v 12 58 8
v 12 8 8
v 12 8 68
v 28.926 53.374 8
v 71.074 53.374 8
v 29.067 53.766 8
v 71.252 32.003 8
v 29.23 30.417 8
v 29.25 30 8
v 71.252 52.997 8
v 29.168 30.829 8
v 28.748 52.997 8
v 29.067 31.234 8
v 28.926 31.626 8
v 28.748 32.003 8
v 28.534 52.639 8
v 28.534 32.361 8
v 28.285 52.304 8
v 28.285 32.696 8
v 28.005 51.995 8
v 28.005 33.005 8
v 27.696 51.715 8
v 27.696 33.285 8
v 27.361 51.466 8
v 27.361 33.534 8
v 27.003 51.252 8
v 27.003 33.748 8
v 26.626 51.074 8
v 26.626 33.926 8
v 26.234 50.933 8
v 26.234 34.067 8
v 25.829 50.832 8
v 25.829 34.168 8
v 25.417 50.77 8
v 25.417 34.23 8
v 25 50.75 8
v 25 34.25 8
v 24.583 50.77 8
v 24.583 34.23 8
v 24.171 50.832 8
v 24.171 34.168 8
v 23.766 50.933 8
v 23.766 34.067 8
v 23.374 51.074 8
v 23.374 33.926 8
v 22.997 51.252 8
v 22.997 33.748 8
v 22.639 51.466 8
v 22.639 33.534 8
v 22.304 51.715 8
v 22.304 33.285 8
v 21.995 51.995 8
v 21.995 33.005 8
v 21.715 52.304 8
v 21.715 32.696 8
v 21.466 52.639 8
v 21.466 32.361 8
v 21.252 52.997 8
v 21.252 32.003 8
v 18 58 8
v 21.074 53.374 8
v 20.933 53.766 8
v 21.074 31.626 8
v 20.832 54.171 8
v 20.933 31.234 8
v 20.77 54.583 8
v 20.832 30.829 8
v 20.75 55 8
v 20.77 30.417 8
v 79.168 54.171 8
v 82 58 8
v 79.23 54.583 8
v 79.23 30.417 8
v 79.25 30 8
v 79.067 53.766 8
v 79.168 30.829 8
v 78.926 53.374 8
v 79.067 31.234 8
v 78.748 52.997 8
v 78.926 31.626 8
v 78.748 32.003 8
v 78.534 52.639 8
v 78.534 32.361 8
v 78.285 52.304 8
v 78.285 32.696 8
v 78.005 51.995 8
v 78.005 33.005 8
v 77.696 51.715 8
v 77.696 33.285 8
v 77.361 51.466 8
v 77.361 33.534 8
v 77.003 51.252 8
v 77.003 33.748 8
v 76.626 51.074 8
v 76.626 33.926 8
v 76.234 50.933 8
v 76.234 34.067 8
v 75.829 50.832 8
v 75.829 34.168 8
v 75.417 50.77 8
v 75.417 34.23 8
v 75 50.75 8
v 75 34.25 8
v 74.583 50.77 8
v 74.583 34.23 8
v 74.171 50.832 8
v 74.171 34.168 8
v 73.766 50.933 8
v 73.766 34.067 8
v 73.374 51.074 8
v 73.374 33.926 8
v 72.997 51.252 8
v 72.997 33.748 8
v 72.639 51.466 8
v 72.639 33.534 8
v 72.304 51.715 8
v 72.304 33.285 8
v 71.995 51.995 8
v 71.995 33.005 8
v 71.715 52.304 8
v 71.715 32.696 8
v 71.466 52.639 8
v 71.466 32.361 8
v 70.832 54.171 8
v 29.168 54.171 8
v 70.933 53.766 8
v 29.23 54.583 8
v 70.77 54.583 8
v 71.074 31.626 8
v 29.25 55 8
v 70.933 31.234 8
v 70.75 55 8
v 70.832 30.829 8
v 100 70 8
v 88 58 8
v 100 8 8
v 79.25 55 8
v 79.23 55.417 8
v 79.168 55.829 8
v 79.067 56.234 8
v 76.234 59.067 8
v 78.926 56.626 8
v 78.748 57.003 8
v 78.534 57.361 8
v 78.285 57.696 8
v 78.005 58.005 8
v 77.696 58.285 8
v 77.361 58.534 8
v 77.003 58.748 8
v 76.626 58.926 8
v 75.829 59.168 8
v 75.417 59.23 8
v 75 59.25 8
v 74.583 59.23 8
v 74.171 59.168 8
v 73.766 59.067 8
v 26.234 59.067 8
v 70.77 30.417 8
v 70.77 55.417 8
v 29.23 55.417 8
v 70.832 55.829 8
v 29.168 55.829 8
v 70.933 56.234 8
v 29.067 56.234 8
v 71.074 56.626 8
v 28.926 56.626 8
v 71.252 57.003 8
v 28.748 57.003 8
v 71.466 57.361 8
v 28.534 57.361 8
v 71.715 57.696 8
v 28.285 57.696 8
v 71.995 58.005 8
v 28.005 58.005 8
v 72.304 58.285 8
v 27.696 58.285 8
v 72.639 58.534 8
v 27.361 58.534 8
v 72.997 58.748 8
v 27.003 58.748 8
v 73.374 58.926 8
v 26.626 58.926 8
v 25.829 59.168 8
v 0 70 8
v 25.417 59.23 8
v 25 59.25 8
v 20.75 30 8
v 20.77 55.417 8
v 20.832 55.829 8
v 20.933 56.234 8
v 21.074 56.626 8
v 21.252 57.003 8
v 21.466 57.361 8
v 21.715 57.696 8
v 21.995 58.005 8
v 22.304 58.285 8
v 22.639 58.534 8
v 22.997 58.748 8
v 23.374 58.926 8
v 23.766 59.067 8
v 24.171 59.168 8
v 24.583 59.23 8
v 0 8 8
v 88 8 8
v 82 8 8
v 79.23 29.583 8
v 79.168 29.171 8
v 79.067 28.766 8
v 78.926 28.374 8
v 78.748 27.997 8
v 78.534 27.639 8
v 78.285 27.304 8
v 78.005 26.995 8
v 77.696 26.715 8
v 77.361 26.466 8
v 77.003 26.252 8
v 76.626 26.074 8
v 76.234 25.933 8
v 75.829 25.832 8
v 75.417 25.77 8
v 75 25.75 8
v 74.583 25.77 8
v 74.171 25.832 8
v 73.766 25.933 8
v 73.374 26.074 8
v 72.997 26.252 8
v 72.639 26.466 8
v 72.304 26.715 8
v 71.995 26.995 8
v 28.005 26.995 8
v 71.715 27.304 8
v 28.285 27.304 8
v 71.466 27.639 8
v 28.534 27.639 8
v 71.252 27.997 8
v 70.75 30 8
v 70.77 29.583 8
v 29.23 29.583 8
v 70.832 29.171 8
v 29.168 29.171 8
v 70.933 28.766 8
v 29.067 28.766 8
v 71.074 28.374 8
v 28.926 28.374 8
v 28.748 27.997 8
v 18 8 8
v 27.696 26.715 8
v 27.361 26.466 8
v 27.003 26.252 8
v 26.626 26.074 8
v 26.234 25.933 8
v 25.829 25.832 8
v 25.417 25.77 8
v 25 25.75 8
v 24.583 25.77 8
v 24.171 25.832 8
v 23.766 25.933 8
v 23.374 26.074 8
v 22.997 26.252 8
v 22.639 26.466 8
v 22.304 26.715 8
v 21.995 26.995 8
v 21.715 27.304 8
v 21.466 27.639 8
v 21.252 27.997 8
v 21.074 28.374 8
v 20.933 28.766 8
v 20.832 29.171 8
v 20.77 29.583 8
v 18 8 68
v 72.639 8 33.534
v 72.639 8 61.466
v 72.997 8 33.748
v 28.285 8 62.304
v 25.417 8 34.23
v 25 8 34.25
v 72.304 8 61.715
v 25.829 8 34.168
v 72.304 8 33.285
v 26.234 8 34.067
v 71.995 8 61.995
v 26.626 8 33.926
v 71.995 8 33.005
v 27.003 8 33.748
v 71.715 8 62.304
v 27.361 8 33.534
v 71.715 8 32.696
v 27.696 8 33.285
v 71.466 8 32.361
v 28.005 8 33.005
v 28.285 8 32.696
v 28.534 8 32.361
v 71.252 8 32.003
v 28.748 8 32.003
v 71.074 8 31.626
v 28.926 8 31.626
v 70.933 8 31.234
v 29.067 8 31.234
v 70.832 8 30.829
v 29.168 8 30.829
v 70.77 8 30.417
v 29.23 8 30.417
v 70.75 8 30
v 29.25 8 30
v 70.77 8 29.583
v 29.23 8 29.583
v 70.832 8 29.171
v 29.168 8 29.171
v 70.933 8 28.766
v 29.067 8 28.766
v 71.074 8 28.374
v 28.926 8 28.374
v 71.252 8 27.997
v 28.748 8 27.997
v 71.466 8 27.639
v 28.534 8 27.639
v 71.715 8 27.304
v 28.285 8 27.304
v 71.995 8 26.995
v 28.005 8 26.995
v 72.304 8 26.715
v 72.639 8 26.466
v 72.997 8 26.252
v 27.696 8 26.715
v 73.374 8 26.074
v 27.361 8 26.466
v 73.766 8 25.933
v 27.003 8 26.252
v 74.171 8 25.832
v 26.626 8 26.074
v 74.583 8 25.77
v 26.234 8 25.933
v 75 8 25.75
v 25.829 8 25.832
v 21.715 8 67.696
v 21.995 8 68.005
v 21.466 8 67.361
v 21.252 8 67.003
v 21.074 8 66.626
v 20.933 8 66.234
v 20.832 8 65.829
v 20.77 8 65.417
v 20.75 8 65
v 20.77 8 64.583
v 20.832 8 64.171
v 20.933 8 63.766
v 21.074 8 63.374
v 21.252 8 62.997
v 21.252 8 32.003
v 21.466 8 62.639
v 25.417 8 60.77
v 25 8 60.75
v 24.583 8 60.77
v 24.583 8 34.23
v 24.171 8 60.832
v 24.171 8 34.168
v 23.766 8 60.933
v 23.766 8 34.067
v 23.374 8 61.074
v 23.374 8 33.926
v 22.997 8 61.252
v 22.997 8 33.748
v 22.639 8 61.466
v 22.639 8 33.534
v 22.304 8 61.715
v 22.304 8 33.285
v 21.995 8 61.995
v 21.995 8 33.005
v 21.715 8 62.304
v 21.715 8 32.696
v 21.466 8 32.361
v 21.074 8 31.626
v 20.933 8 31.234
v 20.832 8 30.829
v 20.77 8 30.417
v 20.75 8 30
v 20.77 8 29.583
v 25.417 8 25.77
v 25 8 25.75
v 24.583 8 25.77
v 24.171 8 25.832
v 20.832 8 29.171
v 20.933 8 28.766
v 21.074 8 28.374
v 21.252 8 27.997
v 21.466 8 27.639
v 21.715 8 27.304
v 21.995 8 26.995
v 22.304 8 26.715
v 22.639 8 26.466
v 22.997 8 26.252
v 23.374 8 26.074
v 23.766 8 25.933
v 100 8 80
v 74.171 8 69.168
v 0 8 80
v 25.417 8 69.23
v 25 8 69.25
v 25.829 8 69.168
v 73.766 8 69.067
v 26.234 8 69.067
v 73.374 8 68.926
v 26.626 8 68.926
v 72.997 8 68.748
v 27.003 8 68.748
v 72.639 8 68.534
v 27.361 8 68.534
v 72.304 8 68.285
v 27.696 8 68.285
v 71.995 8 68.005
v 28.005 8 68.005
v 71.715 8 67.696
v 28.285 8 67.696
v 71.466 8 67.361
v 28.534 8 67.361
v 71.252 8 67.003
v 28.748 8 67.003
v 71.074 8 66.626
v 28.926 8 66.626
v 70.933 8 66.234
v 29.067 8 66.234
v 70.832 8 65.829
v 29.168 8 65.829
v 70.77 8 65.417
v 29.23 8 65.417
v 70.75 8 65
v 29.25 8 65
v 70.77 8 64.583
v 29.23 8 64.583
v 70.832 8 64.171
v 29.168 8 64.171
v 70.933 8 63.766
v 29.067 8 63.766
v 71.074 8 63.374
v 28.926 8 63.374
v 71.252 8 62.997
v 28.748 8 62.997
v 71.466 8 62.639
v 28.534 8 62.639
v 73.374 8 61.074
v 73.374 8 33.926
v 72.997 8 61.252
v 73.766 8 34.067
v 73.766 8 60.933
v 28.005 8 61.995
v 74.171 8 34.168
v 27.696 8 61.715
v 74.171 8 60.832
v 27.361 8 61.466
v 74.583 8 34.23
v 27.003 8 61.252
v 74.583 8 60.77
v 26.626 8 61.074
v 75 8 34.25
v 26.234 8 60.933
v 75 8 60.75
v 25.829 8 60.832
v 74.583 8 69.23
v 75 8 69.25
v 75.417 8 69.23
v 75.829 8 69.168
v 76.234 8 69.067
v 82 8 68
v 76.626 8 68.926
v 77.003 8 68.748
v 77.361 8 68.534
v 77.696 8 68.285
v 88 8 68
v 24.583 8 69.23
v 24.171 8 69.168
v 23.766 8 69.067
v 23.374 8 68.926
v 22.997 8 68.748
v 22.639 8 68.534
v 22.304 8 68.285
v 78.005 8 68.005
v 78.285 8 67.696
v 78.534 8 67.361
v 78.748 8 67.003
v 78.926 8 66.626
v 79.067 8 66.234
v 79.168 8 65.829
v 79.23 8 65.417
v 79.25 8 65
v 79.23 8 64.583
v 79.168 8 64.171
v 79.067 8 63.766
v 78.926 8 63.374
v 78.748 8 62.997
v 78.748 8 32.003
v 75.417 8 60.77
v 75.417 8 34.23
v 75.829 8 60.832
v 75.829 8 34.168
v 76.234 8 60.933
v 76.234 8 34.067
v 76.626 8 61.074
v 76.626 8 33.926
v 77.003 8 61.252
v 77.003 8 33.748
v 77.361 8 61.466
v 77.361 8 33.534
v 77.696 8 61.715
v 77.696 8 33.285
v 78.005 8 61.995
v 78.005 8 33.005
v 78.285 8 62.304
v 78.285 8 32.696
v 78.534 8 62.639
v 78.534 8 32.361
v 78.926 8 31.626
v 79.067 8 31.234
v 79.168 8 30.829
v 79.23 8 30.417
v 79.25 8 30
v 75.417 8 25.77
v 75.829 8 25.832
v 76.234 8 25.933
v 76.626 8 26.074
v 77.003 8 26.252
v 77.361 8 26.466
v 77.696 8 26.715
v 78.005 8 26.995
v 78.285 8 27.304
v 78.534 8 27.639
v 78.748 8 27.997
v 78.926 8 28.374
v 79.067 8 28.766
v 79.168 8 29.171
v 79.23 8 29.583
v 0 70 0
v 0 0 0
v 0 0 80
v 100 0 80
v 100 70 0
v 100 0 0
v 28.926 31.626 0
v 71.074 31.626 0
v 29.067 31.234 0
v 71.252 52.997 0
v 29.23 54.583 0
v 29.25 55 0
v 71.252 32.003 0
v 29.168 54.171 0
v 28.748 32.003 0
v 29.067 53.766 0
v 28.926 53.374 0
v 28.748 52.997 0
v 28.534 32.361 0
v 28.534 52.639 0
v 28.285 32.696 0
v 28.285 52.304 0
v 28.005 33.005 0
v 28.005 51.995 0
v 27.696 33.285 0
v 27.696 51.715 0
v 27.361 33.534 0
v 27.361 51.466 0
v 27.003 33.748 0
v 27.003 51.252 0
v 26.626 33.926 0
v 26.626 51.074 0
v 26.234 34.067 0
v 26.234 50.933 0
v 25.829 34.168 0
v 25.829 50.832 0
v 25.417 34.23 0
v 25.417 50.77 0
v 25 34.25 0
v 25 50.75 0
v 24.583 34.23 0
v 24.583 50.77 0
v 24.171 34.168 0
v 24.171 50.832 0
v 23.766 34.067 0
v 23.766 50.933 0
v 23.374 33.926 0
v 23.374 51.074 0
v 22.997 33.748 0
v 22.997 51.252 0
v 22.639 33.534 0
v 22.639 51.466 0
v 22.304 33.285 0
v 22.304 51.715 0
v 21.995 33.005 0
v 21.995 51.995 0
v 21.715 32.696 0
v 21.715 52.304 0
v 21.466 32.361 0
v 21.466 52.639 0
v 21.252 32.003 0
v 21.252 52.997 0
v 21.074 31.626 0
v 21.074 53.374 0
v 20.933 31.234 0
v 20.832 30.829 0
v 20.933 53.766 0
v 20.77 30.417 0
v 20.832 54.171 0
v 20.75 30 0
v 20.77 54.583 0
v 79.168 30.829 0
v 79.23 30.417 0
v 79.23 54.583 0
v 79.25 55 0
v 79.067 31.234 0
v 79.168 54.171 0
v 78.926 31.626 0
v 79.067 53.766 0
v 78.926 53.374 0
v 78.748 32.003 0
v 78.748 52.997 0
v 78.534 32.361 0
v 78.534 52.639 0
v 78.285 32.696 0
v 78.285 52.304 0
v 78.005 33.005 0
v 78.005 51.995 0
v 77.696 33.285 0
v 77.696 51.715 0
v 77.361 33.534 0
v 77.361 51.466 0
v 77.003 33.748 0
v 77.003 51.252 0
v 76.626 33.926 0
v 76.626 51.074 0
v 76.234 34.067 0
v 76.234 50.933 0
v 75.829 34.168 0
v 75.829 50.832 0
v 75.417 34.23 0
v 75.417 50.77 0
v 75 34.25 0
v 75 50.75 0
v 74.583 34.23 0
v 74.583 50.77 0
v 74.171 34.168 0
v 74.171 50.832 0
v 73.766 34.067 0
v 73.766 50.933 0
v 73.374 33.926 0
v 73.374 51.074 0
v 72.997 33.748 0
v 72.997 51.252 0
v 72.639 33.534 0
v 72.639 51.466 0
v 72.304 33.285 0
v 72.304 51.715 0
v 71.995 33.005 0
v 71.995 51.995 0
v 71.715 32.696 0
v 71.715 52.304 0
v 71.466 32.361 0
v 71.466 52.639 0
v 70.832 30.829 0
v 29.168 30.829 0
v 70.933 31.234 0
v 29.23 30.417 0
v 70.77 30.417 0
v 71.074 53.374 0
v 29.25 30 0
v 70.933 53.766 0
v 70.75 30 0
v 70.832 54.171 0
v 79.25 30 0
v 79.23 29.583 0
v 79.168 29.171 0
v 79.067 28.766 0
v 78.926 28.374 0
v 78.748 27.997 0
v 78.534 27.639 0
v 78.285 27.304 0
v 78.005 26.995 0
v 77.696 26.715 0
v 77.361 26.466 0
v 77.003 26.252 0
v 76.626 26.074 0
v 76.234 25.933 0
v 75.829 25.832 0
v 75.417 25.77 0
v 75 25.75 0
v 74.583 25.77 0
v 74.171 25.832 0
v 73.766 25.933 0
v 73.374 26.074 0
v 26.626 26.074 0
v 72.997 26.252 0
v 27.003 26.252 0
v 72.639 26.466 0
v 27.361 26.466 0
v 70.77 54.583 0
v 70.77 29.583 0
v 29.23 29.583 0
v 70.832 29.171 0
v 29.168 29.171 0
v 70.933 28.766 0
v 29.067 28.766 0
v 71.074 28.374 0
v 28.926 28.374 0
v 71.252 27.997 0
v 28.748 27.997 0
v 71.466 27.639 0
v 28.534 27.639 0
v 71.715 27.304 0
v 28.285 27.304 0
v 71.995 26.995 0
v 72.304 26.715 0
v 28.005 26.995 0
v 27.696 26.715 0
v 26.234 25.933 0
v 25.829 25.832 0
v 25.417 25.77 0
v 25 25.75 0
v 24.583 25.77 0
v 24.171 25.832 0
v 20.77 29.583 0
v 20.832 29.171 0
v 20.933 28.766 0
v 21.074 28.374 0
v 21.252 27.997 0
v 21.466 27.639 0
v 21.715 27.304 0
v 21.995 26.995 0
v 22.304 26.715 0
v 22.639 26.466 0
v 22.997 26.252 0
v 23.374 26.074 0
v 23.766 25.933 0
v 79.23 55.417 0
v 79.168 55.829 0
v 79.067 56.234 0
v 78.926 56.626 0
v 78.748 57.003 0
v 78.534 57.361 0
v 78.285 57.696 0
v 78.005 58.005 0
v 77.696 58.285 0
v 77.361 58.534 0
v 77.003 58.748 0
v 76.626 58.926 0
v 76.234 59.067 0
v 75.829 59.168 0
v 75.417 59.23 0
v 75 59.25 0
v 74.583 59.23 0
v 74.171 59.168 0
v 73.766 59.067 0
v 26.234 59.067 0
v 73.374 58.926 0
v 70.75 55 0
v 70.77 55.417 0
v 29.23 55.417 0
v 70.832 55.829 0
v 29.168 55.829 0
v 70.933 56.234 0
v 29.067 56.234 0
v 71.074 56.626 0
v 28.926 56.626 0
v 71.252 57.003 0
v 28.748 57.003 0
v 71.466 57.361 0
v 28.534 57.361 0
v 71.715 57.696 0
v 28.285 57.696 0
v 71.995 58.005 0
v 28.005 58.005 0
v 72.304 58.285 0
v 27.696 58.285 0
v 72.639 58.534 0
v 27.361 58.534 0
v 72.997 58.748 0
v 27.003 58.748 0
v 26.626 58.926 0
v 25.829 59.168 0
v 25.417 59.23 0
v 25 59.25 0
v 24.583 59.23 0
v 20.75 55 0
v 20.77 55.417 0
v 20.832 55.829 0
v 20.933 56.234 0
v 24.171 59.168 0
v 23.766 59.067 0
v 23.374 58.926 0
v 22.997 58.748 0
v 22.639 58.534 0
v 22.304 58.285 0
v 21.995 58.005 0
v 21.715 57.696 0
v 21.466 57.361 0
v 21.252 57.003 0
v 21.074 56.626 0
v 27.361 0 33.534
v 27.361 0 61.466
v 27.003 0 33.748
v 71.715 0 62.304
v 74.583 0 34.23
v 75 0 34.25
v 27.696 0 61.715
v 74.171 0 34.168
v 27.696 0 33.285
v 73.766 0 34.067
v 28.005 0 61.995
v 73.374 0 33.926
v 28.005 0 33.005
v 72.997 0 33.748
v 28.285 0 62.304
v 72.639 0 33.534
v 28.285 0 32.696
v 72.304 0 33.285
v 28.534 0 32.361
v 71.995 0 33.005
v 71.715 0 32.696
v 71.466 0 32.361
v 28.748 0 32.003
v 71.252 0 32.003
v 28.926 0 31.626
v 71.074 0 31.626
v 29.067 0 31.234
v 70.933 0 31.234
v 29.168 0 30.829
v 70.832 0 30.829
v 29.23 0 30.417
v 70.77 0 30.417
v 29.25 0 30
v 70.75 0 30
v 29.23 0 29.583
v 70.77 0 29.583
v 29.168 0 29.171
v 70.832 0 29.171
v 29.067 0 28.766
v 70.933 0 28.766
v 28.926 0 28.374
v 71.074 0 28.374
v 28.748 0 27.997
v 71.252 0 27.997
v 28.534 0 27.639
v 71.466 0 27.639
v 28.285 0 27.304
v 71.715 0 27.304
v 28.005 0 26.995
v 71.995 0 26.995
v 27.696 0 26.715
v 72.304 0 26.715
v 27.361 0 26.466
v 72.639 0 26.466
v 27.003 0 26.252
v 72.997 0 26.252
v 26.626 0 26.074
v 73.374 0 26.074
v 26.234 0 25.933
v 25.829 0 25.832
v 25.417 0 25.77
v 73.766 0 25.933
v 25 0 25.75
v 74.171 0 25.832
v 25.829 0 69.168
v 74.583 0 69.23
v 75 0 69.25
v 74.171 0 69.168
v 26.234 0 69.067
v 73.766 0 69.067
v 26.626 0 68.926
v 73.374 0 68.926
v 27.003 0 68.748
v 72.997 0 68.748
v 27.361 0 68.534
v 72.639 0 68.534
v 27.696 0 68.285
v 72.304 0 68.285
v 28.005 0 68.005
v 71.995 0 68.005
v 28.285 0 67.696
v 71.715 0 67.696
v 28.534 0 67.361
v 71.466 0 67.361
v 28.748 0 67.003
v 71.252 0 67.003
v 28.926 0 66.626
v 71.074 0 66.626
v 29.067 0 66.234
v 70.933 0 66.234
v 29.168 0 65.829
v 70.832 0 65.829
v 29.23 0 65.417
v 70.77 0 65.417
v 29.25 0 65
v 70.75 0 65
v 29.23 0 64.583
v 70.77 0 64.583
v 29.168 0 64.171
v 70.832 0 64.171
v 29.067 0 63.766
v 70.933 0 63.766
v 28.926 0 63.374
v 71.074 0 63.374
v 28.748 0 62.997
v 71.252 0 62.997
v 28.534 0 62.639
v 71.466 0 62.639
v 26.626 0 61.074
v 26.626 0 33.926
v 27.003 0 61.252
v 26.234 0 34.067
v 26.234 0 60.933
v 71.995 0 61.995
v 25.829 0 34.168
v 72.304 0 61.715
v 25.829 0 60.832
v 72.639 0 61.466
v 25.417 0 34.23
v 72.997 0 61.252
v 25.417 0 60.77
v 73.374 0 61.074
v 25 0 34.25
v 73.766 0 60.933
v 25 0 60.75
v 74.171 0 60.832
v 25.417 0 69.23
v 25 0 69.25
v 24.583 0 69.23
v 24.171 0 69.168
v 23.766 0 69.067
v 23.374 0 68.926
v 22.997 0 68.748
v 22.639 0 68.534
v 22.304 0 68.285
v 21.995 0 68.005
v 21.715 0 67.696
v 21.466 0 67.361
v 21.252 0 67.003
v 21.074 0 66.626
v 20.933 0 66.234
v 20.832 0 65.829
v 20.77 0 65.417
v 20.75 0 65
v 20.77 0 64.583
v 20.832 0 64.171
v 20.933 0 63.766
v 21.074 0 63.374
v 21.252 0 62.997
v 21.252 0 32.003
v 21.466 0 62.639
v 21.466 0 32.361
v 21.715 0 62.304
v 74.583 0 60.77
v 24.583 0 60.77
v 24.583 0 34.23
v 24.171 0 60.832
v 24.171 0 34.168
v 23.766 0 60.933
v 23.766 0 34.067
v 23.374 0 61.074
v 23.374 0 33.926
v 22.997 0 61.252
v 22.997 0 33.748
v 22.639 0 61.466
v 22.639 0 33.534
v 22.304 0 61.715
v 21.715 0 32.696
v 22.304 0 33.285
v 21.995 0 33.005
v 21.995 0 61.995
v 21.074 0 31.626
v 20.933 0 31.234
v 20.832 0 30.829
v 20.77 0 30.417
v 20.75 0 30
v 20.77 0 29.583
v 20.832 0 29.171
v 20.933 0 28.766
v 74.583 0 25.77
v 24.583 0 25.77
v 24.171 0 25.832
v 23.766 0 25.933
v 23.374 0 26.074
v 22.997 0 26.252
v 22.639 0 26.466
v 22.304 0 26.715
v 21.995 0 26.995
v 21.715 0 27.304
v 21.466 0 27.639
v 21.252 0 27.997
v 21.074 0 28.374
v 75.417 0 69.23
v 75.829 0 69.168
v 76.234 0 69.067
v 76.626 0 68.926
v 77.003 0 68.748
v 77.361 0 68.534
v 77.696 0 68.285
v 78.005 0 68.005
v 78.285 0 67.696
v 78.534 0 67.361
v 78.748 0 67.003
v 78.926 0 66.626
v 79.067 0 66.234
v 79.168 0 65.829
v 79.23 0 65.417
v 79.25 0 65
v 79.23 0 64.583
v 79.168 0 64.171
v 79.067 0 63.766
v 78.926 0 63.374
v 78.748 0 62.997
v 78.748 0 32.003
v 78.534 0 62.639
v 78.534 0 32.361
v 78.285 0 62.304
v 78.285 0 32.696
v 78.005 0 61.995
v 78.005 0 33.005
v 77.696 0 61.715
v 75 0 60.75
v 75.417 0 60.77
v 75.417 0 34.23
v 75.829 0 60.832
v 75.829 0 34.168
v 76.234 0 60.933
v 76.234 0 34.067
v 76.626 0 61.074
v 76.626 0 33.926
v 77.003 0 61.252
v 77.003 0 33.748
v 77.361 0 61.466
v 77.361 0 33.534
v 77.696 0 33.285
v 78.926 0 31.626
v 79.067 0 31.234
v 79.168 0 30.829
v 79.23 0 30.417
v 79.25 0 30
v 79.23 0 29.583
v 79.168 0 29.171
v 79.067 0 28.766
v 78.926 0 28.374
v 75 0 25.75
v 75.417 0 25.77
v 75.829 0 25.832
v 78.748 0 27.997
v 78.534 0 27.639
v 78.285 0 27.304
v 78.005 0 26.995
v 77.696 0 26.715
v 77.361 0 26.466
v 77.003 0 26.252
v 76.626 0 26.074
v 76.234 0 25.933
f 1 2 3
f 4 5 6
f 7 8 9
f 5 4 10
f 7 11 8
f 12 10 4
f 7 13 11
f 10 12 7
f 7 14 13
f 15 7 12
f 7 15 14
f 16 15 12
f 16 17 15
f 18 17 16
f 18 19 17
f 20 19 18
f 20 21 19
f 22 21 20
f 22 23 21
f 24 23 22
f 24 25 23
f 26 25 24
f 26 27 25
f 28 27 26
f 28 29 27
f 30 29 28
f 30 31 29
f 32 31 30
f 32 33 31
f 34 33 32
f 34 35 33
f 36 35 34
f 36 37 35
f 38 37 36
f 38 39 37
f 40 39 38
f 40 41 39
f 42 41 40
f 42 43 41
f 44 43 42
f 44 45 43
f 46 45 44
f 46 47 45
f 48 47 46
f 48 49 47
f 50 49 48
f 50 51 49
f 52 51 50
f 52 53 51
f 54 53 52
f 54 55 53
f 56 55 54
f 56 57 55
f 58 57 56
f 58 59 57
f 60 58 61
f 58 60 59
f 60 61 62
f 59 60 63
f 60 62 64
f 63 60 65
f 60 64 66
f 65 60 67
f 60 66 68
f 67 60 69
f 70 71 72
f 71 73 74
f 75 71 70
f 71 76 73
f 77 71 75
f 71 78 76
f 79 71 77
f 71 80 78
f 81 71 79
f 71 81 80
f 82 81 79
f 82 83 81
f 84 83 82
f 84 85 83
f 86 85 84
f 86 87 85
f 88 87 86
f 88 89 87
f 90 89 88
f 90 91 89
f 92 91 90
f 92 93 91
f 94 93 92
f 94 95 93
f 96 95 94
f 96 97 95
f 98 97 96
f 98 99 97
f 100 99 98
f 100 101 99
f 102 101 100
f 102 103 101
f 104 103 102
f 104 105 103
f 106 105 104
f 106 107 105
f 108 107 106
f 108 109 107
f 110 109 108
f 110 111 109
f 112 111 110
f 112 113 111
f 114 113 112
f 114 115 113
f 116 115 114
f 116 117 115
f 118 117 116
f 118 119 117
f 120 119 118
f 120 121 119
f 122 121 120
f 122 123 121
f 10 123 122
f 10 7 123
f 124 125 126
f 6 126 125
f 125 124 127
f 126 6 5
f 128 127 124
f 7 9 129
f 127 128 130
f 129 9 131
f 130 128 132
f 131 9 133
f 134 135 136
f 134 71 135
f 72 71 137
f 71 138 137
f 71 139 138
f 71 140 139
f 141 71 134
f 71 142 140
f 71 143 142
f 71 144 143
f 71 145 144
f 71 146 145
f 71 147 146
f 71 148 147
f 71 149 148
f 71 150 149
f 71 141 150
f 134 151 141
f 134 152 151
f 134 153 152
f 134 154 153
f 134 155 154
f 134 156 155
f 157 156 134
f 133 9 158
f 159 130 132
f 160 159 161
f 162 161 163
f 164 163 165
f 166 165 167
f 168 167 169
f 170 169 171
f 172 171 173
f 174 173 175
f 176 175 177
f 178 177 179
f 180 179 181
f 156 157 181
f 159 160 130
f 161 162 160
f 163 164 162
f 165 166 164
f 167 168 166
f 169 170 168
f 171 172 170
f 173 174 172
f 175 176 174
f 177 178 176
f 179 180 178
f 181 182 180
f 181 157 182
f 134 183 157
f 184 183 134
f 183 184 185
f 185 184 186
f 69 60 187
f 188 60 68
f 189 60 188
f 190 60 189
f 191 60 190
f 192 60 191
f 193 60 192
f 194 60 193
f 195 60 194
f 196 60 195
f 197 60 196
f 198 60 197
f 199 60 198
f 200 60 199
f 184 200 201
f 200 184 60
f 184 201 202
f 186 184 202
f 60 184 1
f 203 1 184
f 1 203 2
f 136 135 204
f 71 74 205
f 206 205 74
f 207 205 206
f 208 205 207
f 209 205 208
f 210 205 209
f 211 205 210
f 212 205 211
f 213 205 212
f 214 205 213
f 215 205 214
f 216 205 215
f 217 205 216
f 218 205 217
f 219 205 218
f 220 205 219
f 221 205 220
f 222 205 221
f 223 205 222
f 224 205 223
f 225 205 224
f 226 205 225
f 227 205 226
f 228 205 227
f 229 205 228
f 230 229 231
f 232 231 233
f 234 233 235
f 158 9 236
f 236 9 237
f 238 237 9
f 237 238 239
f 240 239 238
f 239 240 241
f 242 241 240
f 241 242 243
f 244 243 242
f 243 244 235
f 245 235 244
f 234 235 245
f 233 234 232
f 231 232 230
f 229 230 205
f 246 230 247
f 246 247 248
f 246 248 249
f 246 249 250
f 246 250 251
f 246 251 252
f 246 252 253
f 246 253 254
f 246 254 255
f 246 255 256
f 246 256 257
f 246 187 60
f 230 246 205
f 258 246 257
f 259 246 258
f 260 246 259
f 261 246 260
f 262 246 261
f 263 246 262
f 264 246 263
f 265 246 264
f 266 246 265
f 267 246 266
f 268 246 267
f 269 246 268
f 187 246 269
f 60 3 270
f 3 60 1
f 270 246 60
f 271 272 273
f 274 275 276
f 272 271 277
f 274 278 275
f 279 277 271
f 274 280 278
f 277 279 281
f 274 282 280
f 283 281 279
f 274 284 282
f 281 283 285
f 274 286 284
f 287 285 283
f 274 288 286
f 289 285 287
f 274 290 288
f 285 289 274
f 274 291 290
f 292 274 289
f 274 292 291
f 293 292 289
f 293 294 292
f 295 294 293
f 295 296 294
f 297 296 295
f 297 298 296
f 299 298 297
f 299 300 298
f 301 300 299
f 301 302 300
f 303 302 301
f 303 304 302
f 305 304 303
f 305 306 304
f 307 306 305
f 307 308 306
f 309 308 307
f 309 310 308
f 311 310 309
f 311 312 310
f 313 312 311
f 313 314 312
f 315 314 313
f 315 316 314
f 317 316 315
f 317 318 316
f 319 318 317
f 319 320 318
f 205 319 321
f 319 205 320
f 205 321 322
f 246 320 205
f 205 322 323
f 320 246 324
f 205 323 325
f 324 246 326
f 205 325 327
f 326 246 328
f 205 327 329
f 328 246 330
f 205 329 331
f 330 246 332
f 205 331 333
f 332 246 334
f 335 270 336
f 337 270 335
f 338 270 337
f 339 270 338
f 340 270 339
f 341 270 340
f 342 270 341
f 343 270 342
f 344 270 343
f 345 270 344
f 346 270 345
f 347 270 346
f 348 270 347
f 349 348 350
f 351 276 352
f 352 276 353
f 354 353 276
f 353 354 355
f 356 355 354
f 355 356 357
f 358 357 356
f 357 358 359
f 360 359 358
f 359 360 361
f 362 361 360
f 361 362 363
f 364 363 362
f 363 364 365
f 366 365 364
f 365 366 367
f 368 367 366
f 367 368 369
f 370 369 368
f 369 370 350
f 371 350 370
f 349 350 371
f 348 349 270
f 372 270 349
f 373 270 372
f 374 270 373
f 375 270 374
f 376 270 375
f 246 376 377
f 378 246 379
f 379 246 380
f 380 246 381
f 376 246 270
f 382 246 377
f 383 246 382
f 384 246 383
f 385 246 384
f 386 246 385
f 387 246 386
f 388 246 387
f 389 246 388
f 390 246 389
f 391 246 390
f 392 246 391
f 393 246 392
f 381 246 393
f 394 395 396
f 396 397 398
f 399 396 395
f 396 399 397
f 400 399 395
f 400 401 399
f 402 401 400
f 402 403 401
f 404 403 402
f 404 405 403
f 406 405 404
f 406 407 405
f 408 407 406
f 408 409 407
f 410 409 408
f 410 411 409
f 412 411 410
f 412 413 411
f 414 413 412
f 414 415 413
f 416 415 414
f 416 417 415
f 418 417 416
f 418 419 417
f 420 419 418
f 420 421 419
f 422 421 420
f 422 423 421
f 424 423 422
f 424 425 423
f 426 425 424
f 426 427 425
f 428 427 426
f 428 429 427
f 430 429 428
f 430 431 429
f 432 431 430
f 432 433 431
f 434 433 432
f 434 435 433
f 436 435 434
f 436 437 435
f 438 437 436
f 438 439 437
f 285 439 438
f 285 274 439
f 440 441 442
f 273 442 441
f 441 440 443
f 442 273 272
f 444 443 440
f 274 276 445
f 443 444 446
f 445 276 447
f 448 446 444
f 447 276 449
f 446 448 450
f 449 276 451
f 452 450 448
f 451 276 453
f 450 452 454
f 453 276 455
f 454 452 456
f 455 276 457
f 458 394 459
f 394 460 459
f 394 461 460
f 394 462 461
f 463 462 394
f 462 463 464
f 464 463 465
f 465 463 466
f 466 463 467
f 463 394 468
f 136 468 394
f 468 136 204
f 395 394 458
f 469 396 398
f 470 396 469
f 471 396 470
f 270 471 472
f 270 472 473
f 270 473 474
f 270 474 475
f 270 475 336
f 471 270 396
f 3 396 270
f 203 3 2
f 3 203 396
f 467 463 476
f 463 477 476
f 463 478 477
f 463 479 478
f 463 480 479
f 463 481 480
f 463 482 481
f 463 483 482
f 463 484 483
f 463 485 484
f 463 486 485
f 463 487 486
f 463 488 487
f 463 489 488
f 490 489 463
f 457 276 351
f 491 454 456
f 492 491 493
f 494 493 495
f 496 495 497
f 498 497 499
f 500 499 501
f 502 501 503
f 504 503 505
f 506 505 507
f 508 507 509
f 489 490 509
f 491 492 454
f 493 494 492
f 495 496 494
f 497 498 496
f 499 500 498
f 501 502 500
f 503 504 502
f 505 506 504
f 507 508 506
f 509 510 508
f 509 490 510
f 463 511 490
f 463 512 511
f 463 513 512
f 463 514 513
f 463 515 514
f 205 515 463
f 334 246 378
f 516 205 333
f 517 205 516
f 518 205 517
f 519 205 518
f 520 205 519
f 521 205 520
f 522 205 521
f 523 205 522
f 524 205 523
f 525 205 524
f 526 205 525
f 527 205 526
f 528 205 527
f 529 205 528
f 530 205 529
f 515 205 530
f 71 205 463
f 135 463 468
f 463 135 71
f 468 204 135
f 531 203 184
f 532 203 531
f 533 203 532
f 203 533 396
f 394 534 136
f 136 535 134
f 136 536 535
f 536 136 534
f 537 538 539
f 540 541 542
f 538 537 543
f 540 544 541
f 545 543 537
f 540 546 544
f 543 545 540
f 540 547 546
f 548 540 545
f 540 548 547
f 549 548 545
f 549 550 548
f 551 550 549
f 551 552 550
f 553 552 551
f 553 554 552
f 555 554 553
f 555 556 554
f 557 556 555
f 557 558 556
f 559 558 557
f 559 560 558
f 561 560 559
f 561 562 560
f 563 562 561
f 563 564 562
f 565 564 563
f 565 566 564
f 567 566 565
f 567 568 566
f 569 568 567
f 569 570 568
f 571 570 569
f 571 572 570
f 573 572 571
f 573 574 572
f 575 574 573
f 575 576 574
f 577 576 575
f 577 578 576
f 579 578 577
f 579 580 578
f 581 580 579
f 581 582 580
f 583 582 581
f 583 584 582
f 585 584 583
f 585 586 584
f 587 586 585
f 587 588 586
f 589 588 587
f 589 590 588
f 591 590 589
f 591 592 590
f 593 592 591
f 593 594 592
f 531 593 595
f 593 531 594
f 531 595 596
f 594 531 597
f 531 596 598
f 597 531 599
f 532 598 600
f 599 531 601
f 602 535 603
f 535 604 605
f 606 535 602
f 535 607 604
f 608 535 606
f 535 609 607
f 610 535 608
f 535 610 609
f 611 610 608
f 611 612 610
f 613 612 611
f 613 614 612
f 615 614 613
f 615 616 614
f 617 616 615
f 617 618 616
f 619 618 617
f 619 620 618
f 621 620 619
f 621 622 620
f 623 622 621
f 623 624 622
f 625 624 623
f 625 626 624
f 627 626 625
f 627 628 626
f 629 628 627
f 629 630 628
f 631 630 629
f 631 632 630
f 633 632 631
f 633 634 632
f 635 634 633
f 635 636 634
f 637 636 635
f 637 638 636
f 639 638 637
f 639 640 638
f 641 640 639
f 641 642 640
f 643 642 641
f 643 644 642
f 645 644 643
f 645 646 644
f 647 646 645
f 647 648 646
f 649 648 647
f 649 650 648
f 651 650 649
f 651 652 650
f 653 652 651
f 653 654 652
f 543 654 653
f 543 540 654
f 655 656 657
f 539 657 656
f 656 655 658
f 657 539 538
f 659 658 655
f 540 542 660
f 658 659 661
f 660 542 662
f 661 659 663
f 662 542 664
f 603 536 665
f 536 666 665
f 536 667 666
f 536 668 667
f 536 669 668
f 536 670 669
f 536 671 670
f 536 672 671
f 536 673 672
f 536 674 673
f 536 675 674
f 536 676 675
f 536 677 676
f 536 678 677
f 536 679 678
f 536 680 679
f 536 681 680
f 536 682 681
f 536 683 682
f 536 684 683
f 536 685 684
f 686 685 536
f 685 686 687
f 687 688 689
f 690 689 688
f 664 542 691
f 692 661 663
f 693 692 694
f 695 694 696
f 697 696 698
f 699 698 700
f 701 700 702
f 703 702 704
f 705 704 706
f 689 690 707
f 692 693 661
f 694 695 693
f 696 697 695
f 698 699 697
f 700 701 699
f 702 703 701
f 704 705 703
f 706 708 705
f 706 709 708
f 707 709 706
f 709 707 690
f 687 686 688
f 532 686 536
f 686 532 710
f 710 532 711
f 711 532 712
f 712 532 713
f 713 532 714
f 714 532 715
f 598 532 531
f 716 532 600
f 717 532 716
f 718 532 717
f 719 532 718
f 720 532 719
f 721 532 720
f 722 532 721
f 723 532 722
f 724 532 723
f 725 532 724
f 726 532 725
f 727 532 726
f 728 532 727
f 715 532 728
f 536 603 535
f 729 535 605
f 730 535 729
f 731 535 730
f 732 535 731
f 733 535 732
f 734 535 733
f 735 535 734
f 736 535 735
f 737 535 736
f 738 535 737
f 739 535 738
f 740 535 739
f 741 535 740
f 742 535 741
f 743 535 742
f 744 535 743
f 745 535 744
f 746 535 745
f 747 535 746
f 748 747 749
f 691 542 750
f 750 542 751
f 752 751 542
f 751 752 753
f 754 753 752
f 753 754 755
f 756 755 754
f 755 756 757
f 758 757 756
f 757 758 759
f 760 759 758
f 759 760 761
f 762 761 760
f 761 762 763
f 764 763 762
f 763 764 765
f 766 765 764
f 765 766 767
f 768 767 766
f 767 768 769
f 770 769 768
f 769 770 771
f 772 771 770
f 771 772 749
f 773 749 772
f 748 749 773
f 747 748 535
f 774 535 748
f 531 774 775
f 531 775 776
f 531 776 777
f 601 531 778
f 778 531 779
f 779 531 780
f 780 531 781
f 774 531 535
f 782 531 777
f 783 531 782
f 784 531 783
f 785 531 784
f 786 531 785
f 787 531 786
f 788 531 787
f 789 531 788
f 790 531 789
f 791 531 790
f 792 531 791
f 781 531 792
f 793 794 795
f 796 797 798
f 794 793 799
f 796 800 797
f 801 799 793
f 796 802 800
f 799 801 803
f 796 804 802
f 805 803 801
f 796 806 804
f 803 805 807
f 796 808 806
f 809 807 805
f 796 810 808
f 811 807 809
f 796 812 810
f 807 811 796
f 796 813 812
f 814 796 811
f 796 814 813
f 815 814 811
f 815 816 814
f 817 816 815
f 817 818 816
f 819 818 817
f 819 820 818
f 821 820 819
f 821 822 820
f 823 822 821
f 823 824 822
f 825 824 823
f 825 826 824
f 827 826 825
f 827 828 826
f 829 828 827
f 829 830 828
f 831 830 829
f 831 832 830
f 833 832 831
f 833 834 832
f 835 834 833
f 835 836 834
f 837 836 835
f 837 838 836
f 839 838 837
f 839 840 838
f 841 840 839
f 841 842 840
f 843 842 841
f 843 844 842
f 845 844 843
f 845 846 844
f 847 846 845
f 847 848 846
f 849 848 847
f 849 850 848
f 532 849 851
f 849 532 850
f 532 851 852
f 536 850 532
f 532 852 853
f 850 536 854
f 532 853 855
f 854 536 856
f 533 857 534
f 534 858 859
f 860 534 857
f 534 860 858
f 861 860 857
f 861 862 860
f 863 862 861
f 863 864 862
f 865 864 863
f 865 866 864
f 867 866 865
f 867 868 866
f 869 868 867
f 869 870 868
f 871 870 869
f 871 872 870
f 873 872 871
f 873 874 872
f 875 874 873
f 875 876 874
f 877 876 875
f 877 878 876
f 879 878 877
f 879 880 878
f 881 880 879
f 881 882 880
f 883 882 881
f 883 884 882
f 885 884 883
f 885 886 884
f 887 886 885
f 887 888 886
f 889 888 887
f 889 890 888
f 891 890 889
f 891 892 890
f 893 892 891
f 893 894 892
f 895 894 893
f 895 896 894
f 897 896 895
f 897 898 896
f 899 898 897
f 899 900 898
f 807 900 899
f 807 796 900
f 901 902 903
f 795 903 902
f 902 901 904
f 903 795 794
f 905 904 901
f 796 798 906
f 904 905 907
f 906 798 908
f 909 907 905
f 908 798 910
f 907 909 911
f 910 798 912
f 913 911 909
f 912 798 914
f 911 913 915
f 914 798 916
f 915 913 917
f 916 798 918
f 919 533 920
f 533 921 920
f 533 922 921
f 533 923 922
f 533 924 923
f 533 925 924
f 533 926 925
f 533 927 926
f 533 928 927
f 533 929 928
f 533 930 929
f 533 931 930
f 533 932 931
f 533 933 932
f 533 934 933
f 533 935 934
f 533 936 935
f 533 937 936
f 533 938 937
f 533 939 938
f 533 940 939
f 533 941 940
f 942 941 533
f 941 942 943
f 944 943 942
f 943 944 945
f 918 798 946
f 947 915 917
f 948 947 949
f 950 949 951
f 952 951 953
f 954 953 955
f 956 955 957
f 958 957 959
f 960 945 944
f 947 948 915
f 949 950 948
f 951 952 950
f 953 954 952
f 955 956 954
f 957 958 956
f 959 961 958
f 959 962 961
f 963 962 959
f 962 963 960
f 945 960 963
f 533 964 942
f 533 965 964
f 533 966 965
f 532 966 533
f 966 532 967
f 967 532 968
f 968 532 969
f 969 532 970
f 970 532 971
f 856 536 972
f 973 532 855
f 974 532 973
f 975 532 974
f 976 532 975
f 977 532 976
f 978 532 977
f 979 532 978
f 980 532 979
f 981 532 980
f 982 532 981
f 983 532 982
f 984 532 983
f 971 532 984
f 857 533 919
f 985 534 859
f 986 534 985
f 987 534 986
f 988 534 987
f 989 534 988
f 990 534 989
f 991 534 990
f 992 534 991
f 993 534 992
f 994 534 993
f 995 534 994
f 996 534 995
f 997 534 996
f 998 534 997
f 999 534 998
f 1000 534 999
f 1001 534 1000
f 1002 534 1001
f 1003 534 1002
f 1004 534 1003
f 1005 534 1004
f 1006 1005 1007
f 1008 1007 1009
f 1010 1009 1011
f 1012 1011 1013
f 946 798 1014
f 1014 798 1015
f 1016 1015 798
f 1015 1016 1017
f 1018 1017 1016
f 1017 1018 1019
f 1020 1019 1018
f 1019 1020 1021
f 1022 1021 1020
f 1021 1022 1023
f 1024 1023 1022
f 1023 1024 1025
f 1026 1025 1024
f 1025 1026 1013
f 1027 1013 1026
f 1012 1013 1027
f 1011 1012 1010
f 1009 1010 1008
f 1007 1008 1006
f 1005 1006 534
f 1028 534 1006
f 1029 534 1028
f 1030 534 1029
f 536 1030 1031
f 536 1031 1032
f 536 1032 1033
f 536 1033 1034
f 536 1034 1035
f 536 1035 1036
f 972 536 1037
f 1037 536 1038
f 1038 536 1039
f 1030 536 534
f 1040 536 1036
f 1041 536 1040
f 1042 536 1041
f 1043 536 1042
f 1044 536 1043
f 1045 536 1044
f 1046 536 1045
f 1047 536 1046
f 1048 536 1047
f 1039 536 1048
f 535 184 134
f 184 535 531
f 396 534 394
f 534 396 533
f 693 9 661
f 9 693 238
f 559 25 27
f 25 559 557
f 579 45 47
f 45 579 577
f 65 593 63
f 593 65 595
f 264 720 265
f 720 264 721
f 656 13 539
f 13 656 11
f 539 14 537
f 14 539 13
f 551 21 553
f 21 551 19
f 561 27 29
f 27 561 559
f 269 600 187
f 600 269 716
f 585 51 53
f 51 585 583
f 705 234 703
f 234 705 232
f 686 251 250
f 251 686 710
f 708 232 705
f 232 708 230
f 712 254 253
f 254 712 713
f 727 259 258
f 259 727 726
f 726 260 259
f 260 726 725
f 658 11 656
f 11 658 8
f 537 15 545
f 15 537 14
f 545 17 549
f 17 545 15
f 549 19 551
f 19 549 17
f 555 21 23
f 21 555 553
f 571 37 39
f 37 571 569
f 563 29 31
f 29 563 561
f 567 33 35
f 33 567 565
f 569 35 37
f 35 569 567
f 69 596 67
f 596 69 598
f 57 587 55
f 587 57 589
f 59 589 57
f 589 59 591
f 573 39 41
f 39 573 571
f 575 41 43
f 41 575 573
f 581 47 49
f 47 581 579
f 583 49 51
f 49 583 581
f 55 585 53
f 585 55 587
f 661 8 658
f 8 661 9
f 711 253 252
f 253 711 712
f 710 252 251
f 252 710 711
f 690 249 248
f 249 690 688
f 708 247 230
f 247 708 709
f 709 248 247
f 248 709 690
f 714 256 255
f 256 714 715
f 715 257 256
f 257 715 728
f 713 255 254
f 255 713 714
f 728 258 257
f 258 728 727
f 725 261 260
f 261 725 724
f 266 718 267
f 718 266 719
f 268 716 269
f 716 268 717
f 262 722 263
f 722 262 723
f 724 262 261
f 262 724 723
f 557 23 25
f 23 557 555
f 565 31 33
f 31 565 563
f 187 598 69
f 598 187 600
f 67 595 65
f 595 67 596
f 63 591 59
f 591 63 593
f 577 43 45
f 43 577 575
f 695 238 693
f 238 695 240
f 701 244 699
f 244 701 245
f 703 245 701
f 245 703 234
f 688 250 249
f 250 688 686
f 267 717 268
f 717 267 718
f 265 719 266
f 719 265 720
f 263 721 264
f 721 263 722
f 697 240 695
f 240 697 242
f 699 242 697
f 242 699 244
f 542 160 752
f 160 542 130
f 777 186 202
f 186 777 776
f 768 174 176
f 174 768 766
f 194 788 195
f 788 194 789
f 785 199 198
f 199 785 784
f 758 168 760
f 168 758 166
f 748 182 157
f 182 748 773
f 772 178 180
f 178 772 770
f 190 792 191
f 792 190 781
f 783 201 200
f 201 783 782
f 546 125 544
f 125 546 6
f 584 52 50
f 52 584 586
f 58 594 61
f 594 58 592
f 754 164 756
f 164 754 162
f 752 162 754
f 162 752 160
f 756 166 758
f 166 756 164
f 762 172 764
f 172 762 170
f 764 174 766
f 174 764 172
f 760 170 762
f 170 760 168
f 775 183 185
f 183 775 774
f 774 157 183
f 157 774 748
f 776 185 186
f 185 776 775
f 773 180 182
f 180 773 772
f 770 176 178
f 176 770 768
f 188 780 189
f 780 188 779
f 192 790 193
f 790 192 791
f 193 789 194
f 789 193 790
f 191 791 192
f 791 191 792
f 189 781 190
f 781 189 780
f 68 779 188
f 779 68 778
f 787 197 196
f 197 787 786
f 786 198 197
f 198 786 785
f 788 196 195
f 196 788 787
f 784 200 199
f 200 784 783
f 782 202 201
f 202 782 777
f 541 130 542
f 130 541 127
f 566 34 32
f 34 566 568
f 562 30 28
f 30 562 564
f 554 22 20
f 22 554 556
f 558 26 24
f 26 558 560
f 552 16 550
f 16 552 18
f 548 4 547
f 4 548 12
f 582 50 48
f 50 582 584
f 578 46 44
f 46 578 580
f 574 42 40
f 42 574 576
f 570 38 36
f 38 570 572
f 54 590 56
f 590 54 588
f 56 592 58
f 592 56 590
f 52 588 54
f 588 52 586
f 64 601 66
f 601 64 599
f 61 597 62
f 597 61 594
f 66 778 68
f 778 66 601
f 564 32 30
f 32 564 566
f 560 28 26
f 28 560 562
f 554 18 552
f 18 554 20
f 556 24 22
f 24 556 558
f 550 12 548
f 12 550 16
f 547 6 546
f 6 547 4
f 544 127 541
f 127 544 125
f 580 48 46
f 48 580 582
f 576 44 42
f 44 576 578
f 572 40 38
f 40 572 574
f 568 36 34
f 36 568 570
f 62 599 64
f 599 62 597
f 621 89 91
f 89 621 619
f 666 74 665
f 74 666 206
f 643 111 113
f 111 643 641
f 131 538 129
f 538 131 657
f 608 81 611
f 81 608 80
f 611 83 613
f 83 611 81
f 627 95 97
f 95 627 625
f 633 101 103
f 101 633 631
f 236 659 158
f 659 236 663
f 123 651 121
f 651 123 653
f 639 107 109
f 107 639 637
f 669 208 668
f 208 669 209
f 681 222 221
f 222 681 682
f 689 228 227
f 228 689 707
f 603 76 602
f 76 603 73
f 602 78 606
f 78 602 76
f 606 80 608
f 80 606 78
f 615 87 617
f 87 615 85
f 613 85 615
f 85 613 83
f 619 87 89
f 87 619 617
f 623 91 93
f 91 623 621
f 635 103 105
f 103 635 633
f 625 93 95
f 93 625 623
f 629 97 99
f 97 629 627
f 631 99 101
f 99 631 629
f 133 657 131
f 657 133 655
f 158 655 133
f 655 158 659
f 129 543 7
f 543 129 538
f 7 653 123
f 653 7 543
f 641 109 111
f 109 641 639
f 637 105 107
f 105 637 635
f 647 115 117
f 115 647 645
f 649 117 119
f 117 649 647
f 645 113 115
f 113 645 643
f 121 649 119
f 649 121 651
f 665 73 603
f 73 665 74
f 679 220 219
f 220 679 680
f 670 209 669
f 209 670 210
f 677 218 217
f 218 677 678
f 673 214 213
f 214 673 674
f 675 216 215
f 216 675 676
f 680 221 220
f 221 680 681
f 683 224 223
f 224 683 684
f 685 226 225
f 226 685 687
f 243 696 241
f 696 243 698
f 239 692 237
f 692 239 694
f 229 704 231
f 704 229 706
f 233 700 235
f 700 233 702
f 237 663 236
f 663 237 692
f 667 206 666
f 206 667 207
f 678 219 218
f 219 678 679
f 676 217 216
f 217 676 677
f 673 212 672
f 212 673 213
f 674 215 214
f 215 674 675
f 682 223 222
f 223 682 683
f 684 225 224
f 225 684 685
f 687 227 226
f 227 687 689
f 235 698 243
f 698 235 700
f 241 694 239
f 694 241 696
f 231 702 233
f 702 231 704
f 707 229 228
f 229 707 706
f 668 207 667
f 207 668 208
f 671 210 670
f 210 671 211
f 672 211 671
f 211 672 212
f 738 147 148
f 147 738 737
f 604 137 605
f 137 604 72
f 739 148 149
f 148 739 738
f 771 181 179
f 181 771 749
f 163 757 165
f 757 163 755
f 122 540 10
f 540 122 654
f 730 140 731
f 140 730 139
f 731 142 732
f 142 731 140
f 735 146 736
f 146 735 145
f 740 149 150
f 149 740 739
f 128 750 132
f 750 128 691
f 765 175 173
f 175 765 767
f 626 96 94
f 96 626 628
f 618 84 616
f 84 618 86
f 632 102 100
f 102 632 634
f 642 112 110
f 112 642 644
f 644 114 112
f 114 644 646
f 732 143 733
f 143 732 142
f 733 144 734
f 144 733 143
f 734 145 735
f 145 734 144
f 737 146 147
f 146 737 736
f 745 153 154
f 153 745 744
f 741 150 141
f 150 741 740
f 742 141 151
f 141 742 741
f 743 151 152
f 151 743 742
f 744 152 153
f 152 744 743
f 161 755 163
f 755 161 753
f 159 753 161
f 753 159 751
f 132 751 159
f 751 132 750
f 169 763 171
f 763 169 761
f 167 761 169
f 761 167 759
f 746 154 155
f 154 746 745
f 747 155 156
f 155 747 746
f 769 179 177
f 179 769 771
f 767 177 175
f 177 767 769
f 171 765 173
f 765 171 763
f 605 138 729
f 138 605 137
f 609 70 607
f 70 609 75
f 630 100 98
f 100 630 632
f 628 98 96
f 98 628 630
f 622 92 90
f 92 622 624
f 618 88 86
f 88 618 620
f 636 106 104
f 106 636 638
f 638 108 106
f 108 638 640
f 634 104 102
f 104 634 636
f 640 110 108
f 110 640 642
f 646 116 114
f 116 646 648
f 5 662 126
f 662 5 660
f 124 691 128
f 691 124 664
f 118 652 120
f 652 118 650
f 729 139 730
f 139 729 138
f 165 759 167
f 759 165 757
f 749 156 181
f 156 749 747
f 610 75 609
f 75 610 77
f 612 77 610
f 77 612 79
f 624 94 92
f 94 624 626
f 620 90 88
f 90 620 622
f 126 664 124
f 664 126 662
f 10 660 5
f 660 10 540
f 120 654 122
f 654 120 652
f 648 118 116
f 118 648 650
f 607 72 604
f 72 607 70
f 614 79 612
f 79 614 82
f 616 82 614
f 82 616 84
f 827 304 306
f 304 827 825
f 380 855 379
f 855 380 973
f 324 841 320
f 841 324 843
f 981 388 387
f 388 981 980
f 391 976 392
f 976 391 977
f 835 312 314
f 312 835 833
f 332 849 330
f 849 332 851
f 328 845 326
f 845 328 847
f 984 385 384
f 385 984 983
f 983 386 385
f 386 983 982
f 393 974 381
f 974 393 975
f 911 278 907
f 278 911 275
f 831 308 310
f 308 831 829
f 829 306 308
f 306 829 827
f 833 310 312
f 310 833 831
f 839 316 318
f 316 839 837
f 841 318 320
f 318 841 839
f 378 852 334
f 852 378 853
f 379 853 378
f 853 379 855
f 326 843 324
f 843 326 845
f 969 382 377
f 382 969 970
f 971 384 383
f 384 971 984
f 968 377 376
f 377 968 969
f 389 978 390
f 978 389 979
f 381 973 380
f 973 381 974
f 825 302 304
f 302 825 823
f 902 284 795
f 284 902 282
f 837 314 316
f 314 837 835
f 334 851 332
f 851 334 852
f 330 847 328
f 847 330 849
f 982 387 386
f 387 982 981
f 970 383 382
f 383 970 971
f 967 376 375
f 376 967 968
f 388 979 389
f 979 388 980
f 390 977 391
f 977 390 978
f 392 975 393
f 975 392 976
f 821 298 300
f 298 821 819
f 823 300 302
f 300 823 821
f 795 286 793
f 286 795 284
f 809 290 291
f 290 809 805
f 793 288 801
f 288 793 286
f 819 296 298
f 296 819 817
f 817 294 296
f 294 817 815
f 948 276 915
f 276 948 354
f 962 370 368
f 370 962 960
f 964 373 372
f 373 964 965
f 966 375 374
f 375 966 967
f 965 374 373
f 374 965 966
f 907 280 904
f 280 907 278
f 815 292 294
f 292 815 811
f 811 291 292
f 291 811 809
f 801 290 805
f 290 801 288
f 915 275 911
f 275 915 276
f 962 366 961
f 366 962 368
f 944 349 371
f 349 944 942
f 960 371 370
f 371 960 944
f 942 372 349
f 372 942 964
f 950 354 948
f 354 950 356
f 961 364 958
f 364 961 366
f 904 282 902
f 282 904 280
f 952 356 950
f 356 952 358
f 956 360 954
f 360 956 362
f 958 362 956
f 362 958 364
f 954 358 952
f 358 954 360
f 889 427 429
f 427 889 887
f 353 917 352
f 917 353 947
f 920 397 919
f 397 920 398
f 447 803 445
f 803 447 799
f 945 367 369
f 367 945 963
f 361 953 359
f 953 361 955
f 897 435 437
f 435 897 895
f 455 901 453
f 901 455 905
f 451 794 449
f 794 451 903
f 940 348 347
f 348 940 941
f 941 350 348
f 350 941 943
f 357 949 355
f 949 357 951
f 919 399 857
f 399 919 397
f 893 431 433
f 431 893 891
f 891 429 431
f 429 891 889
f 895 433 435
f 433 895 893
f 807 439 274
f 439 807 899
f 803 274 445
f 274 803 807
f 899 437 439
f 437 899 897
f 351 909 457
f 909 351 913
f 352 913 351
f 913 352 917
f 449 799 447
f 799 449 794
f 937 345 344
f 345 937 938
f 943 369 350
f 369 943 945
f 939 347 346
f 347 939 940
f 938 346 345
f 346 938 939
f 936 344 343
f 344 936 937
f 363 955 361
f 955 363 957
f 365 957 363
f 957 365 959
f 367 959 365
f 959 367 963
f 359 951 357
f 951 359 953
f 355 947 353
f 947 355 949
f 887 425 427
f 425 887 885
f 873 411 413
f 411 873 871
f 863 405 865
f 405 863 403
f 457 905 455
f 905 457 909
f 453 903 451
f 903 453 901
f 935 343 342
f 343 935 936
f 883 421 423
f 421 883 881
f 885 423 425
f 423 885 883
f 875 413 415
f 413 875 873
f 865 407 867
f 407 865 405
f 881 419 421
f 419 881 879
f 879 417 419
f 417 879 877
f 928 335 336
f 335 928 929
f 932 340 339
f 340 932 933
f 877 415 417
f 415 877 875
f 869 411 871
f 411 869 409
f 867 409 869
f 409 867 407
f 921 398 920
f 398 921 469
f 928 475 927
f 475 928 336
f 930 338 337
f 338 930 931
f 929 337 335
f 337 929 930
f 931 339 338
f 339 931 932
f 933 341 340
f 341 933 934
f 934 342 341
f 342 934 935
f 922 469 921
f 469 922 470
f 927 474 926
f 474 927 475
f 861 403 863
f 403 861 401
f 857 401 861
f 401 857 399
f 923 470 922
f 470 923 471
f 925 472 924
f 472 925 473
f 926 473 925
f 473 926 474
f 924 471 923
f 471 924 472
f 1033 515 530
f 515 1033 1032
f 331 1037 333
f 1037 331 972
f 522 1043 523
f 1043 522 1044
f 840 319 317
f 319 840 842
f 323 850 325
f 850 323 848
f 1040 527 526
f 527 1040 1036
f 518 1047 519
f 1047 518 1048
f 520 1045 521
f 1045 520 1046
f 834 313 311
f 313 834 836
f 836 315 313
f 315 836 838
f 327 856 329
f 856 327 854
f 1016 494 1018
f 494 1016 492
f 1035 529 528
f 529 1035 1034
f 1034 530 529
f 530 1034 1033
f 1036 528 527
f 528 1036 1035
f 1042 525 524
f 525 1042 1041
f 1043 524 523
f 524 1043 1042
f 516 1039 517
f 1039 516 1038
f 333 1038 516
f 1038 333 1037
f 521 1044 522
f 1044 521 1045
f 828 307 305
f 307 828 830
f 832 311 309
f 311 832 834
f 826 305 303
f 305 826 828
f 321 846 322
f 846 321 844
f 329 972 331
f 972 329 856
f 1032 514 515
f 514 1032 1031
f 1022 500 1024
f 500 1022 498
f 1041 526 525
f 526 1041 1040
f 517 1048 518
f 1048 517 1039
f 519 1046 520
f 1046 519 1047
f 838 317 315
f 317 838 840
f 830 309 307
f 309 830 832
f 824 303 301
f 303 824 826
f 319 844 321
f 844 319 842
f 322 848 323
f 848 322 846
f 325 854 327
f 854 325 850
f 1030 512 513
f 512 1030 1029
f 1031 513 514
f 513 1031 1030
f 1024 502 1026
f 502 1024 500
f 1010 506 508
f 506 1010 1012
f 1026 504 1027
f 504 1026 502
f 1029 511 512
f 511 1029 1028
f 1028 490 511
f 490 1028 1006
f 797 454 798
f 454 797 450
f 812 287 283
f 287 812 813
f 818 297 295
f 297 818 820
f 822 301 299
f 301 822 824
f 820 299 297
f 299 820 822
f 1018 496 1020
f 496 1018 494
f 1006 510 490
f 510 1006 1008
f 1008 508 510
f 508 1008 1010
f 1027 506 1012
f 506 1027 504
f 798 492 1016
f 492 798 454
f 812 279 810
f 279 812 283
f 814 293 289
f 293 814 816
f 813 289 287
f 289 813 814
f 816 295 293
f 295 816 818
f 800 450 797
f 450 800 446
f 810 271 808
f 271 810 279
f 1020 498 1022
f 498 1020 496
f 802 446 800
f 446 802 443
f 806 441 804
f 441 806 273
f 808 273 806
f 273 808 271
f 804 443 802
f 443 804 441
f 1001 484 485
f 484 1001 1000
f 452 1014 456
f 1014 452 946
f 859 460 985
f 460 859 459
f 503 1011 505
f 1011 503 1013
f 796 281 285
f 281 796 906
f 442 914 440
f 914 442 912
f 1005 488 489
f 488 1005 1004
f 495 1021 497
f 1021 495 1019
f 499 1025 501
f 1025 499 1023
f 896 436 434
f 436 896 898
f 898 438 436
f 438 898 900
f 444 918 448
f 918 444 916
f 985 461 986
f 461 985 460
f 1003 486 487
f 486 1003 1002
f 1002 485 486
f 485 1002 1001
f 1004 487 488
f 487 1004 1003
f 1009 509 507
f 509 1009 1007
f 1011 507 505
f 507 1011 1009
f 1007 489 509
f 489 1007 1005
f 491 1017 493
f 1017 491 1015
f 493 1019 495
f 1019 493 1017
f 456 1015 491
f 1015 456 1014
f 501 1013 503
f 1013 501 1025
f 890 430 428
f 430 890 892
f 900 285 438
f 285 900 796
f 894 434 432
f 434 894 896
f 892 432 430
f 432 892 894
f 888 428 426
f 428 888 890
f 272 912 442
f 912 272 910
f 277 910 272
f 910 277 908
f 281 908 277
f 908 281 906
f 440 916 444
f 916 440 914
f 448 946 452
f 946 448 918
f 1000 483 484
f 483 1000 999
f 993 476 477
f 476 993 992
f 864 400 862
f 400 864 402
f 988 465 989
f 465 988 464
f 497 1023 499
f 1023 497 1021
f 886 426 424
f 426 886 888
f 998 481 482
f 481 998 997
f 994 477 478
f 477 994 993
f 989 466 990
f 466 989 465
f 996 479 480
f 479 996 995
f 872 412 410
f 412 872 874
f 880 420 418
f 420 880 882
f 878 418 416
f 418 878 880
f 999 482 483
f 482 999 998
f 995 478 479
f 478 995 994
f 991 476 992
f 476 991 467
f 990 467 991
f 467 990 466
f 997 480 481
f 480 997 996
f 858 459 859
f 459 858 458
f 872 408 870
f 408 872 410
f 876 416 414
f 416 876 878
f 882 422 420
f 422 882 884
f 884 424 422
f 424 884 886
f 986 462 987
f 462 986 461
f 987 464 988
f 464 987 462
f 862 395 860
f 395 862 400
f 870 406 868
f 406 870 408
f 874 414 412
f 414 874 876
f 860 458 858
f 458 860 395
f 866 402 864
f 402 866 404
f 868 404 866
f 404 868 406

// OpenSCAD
// Original MechIntel educational model. CC0-1.0. Units: mm.
// Not a standardized or load-rated component.
$fn=96;
width=100; depth=70; height=80; wall=8; hole=8.5; gusset=6;
$fn=64;
difference(){
 union(){
  cube([width,depth,wall]);
  cube([width,wall,height]);
  for(x=[12,width-12-gusset]) translate([x,wall,wall])
   rotate([90,0,90]) linear_extrude(height=gusset)
    polygon([[0,0],[depth-wall-12,0],[0,height-wall-12]]);
 }
 for(x=[25,width-25]) for(y=[30,depth-15]) translate([x,y,-1]) cylinder(d=hole,h=wall+2);
 for(x=[25,width-25]) for(z=[30,height-15]) translate([x,-1,z]) rotate([-90,0,0]) cylinder(d=hole,h=wall+2);
}
